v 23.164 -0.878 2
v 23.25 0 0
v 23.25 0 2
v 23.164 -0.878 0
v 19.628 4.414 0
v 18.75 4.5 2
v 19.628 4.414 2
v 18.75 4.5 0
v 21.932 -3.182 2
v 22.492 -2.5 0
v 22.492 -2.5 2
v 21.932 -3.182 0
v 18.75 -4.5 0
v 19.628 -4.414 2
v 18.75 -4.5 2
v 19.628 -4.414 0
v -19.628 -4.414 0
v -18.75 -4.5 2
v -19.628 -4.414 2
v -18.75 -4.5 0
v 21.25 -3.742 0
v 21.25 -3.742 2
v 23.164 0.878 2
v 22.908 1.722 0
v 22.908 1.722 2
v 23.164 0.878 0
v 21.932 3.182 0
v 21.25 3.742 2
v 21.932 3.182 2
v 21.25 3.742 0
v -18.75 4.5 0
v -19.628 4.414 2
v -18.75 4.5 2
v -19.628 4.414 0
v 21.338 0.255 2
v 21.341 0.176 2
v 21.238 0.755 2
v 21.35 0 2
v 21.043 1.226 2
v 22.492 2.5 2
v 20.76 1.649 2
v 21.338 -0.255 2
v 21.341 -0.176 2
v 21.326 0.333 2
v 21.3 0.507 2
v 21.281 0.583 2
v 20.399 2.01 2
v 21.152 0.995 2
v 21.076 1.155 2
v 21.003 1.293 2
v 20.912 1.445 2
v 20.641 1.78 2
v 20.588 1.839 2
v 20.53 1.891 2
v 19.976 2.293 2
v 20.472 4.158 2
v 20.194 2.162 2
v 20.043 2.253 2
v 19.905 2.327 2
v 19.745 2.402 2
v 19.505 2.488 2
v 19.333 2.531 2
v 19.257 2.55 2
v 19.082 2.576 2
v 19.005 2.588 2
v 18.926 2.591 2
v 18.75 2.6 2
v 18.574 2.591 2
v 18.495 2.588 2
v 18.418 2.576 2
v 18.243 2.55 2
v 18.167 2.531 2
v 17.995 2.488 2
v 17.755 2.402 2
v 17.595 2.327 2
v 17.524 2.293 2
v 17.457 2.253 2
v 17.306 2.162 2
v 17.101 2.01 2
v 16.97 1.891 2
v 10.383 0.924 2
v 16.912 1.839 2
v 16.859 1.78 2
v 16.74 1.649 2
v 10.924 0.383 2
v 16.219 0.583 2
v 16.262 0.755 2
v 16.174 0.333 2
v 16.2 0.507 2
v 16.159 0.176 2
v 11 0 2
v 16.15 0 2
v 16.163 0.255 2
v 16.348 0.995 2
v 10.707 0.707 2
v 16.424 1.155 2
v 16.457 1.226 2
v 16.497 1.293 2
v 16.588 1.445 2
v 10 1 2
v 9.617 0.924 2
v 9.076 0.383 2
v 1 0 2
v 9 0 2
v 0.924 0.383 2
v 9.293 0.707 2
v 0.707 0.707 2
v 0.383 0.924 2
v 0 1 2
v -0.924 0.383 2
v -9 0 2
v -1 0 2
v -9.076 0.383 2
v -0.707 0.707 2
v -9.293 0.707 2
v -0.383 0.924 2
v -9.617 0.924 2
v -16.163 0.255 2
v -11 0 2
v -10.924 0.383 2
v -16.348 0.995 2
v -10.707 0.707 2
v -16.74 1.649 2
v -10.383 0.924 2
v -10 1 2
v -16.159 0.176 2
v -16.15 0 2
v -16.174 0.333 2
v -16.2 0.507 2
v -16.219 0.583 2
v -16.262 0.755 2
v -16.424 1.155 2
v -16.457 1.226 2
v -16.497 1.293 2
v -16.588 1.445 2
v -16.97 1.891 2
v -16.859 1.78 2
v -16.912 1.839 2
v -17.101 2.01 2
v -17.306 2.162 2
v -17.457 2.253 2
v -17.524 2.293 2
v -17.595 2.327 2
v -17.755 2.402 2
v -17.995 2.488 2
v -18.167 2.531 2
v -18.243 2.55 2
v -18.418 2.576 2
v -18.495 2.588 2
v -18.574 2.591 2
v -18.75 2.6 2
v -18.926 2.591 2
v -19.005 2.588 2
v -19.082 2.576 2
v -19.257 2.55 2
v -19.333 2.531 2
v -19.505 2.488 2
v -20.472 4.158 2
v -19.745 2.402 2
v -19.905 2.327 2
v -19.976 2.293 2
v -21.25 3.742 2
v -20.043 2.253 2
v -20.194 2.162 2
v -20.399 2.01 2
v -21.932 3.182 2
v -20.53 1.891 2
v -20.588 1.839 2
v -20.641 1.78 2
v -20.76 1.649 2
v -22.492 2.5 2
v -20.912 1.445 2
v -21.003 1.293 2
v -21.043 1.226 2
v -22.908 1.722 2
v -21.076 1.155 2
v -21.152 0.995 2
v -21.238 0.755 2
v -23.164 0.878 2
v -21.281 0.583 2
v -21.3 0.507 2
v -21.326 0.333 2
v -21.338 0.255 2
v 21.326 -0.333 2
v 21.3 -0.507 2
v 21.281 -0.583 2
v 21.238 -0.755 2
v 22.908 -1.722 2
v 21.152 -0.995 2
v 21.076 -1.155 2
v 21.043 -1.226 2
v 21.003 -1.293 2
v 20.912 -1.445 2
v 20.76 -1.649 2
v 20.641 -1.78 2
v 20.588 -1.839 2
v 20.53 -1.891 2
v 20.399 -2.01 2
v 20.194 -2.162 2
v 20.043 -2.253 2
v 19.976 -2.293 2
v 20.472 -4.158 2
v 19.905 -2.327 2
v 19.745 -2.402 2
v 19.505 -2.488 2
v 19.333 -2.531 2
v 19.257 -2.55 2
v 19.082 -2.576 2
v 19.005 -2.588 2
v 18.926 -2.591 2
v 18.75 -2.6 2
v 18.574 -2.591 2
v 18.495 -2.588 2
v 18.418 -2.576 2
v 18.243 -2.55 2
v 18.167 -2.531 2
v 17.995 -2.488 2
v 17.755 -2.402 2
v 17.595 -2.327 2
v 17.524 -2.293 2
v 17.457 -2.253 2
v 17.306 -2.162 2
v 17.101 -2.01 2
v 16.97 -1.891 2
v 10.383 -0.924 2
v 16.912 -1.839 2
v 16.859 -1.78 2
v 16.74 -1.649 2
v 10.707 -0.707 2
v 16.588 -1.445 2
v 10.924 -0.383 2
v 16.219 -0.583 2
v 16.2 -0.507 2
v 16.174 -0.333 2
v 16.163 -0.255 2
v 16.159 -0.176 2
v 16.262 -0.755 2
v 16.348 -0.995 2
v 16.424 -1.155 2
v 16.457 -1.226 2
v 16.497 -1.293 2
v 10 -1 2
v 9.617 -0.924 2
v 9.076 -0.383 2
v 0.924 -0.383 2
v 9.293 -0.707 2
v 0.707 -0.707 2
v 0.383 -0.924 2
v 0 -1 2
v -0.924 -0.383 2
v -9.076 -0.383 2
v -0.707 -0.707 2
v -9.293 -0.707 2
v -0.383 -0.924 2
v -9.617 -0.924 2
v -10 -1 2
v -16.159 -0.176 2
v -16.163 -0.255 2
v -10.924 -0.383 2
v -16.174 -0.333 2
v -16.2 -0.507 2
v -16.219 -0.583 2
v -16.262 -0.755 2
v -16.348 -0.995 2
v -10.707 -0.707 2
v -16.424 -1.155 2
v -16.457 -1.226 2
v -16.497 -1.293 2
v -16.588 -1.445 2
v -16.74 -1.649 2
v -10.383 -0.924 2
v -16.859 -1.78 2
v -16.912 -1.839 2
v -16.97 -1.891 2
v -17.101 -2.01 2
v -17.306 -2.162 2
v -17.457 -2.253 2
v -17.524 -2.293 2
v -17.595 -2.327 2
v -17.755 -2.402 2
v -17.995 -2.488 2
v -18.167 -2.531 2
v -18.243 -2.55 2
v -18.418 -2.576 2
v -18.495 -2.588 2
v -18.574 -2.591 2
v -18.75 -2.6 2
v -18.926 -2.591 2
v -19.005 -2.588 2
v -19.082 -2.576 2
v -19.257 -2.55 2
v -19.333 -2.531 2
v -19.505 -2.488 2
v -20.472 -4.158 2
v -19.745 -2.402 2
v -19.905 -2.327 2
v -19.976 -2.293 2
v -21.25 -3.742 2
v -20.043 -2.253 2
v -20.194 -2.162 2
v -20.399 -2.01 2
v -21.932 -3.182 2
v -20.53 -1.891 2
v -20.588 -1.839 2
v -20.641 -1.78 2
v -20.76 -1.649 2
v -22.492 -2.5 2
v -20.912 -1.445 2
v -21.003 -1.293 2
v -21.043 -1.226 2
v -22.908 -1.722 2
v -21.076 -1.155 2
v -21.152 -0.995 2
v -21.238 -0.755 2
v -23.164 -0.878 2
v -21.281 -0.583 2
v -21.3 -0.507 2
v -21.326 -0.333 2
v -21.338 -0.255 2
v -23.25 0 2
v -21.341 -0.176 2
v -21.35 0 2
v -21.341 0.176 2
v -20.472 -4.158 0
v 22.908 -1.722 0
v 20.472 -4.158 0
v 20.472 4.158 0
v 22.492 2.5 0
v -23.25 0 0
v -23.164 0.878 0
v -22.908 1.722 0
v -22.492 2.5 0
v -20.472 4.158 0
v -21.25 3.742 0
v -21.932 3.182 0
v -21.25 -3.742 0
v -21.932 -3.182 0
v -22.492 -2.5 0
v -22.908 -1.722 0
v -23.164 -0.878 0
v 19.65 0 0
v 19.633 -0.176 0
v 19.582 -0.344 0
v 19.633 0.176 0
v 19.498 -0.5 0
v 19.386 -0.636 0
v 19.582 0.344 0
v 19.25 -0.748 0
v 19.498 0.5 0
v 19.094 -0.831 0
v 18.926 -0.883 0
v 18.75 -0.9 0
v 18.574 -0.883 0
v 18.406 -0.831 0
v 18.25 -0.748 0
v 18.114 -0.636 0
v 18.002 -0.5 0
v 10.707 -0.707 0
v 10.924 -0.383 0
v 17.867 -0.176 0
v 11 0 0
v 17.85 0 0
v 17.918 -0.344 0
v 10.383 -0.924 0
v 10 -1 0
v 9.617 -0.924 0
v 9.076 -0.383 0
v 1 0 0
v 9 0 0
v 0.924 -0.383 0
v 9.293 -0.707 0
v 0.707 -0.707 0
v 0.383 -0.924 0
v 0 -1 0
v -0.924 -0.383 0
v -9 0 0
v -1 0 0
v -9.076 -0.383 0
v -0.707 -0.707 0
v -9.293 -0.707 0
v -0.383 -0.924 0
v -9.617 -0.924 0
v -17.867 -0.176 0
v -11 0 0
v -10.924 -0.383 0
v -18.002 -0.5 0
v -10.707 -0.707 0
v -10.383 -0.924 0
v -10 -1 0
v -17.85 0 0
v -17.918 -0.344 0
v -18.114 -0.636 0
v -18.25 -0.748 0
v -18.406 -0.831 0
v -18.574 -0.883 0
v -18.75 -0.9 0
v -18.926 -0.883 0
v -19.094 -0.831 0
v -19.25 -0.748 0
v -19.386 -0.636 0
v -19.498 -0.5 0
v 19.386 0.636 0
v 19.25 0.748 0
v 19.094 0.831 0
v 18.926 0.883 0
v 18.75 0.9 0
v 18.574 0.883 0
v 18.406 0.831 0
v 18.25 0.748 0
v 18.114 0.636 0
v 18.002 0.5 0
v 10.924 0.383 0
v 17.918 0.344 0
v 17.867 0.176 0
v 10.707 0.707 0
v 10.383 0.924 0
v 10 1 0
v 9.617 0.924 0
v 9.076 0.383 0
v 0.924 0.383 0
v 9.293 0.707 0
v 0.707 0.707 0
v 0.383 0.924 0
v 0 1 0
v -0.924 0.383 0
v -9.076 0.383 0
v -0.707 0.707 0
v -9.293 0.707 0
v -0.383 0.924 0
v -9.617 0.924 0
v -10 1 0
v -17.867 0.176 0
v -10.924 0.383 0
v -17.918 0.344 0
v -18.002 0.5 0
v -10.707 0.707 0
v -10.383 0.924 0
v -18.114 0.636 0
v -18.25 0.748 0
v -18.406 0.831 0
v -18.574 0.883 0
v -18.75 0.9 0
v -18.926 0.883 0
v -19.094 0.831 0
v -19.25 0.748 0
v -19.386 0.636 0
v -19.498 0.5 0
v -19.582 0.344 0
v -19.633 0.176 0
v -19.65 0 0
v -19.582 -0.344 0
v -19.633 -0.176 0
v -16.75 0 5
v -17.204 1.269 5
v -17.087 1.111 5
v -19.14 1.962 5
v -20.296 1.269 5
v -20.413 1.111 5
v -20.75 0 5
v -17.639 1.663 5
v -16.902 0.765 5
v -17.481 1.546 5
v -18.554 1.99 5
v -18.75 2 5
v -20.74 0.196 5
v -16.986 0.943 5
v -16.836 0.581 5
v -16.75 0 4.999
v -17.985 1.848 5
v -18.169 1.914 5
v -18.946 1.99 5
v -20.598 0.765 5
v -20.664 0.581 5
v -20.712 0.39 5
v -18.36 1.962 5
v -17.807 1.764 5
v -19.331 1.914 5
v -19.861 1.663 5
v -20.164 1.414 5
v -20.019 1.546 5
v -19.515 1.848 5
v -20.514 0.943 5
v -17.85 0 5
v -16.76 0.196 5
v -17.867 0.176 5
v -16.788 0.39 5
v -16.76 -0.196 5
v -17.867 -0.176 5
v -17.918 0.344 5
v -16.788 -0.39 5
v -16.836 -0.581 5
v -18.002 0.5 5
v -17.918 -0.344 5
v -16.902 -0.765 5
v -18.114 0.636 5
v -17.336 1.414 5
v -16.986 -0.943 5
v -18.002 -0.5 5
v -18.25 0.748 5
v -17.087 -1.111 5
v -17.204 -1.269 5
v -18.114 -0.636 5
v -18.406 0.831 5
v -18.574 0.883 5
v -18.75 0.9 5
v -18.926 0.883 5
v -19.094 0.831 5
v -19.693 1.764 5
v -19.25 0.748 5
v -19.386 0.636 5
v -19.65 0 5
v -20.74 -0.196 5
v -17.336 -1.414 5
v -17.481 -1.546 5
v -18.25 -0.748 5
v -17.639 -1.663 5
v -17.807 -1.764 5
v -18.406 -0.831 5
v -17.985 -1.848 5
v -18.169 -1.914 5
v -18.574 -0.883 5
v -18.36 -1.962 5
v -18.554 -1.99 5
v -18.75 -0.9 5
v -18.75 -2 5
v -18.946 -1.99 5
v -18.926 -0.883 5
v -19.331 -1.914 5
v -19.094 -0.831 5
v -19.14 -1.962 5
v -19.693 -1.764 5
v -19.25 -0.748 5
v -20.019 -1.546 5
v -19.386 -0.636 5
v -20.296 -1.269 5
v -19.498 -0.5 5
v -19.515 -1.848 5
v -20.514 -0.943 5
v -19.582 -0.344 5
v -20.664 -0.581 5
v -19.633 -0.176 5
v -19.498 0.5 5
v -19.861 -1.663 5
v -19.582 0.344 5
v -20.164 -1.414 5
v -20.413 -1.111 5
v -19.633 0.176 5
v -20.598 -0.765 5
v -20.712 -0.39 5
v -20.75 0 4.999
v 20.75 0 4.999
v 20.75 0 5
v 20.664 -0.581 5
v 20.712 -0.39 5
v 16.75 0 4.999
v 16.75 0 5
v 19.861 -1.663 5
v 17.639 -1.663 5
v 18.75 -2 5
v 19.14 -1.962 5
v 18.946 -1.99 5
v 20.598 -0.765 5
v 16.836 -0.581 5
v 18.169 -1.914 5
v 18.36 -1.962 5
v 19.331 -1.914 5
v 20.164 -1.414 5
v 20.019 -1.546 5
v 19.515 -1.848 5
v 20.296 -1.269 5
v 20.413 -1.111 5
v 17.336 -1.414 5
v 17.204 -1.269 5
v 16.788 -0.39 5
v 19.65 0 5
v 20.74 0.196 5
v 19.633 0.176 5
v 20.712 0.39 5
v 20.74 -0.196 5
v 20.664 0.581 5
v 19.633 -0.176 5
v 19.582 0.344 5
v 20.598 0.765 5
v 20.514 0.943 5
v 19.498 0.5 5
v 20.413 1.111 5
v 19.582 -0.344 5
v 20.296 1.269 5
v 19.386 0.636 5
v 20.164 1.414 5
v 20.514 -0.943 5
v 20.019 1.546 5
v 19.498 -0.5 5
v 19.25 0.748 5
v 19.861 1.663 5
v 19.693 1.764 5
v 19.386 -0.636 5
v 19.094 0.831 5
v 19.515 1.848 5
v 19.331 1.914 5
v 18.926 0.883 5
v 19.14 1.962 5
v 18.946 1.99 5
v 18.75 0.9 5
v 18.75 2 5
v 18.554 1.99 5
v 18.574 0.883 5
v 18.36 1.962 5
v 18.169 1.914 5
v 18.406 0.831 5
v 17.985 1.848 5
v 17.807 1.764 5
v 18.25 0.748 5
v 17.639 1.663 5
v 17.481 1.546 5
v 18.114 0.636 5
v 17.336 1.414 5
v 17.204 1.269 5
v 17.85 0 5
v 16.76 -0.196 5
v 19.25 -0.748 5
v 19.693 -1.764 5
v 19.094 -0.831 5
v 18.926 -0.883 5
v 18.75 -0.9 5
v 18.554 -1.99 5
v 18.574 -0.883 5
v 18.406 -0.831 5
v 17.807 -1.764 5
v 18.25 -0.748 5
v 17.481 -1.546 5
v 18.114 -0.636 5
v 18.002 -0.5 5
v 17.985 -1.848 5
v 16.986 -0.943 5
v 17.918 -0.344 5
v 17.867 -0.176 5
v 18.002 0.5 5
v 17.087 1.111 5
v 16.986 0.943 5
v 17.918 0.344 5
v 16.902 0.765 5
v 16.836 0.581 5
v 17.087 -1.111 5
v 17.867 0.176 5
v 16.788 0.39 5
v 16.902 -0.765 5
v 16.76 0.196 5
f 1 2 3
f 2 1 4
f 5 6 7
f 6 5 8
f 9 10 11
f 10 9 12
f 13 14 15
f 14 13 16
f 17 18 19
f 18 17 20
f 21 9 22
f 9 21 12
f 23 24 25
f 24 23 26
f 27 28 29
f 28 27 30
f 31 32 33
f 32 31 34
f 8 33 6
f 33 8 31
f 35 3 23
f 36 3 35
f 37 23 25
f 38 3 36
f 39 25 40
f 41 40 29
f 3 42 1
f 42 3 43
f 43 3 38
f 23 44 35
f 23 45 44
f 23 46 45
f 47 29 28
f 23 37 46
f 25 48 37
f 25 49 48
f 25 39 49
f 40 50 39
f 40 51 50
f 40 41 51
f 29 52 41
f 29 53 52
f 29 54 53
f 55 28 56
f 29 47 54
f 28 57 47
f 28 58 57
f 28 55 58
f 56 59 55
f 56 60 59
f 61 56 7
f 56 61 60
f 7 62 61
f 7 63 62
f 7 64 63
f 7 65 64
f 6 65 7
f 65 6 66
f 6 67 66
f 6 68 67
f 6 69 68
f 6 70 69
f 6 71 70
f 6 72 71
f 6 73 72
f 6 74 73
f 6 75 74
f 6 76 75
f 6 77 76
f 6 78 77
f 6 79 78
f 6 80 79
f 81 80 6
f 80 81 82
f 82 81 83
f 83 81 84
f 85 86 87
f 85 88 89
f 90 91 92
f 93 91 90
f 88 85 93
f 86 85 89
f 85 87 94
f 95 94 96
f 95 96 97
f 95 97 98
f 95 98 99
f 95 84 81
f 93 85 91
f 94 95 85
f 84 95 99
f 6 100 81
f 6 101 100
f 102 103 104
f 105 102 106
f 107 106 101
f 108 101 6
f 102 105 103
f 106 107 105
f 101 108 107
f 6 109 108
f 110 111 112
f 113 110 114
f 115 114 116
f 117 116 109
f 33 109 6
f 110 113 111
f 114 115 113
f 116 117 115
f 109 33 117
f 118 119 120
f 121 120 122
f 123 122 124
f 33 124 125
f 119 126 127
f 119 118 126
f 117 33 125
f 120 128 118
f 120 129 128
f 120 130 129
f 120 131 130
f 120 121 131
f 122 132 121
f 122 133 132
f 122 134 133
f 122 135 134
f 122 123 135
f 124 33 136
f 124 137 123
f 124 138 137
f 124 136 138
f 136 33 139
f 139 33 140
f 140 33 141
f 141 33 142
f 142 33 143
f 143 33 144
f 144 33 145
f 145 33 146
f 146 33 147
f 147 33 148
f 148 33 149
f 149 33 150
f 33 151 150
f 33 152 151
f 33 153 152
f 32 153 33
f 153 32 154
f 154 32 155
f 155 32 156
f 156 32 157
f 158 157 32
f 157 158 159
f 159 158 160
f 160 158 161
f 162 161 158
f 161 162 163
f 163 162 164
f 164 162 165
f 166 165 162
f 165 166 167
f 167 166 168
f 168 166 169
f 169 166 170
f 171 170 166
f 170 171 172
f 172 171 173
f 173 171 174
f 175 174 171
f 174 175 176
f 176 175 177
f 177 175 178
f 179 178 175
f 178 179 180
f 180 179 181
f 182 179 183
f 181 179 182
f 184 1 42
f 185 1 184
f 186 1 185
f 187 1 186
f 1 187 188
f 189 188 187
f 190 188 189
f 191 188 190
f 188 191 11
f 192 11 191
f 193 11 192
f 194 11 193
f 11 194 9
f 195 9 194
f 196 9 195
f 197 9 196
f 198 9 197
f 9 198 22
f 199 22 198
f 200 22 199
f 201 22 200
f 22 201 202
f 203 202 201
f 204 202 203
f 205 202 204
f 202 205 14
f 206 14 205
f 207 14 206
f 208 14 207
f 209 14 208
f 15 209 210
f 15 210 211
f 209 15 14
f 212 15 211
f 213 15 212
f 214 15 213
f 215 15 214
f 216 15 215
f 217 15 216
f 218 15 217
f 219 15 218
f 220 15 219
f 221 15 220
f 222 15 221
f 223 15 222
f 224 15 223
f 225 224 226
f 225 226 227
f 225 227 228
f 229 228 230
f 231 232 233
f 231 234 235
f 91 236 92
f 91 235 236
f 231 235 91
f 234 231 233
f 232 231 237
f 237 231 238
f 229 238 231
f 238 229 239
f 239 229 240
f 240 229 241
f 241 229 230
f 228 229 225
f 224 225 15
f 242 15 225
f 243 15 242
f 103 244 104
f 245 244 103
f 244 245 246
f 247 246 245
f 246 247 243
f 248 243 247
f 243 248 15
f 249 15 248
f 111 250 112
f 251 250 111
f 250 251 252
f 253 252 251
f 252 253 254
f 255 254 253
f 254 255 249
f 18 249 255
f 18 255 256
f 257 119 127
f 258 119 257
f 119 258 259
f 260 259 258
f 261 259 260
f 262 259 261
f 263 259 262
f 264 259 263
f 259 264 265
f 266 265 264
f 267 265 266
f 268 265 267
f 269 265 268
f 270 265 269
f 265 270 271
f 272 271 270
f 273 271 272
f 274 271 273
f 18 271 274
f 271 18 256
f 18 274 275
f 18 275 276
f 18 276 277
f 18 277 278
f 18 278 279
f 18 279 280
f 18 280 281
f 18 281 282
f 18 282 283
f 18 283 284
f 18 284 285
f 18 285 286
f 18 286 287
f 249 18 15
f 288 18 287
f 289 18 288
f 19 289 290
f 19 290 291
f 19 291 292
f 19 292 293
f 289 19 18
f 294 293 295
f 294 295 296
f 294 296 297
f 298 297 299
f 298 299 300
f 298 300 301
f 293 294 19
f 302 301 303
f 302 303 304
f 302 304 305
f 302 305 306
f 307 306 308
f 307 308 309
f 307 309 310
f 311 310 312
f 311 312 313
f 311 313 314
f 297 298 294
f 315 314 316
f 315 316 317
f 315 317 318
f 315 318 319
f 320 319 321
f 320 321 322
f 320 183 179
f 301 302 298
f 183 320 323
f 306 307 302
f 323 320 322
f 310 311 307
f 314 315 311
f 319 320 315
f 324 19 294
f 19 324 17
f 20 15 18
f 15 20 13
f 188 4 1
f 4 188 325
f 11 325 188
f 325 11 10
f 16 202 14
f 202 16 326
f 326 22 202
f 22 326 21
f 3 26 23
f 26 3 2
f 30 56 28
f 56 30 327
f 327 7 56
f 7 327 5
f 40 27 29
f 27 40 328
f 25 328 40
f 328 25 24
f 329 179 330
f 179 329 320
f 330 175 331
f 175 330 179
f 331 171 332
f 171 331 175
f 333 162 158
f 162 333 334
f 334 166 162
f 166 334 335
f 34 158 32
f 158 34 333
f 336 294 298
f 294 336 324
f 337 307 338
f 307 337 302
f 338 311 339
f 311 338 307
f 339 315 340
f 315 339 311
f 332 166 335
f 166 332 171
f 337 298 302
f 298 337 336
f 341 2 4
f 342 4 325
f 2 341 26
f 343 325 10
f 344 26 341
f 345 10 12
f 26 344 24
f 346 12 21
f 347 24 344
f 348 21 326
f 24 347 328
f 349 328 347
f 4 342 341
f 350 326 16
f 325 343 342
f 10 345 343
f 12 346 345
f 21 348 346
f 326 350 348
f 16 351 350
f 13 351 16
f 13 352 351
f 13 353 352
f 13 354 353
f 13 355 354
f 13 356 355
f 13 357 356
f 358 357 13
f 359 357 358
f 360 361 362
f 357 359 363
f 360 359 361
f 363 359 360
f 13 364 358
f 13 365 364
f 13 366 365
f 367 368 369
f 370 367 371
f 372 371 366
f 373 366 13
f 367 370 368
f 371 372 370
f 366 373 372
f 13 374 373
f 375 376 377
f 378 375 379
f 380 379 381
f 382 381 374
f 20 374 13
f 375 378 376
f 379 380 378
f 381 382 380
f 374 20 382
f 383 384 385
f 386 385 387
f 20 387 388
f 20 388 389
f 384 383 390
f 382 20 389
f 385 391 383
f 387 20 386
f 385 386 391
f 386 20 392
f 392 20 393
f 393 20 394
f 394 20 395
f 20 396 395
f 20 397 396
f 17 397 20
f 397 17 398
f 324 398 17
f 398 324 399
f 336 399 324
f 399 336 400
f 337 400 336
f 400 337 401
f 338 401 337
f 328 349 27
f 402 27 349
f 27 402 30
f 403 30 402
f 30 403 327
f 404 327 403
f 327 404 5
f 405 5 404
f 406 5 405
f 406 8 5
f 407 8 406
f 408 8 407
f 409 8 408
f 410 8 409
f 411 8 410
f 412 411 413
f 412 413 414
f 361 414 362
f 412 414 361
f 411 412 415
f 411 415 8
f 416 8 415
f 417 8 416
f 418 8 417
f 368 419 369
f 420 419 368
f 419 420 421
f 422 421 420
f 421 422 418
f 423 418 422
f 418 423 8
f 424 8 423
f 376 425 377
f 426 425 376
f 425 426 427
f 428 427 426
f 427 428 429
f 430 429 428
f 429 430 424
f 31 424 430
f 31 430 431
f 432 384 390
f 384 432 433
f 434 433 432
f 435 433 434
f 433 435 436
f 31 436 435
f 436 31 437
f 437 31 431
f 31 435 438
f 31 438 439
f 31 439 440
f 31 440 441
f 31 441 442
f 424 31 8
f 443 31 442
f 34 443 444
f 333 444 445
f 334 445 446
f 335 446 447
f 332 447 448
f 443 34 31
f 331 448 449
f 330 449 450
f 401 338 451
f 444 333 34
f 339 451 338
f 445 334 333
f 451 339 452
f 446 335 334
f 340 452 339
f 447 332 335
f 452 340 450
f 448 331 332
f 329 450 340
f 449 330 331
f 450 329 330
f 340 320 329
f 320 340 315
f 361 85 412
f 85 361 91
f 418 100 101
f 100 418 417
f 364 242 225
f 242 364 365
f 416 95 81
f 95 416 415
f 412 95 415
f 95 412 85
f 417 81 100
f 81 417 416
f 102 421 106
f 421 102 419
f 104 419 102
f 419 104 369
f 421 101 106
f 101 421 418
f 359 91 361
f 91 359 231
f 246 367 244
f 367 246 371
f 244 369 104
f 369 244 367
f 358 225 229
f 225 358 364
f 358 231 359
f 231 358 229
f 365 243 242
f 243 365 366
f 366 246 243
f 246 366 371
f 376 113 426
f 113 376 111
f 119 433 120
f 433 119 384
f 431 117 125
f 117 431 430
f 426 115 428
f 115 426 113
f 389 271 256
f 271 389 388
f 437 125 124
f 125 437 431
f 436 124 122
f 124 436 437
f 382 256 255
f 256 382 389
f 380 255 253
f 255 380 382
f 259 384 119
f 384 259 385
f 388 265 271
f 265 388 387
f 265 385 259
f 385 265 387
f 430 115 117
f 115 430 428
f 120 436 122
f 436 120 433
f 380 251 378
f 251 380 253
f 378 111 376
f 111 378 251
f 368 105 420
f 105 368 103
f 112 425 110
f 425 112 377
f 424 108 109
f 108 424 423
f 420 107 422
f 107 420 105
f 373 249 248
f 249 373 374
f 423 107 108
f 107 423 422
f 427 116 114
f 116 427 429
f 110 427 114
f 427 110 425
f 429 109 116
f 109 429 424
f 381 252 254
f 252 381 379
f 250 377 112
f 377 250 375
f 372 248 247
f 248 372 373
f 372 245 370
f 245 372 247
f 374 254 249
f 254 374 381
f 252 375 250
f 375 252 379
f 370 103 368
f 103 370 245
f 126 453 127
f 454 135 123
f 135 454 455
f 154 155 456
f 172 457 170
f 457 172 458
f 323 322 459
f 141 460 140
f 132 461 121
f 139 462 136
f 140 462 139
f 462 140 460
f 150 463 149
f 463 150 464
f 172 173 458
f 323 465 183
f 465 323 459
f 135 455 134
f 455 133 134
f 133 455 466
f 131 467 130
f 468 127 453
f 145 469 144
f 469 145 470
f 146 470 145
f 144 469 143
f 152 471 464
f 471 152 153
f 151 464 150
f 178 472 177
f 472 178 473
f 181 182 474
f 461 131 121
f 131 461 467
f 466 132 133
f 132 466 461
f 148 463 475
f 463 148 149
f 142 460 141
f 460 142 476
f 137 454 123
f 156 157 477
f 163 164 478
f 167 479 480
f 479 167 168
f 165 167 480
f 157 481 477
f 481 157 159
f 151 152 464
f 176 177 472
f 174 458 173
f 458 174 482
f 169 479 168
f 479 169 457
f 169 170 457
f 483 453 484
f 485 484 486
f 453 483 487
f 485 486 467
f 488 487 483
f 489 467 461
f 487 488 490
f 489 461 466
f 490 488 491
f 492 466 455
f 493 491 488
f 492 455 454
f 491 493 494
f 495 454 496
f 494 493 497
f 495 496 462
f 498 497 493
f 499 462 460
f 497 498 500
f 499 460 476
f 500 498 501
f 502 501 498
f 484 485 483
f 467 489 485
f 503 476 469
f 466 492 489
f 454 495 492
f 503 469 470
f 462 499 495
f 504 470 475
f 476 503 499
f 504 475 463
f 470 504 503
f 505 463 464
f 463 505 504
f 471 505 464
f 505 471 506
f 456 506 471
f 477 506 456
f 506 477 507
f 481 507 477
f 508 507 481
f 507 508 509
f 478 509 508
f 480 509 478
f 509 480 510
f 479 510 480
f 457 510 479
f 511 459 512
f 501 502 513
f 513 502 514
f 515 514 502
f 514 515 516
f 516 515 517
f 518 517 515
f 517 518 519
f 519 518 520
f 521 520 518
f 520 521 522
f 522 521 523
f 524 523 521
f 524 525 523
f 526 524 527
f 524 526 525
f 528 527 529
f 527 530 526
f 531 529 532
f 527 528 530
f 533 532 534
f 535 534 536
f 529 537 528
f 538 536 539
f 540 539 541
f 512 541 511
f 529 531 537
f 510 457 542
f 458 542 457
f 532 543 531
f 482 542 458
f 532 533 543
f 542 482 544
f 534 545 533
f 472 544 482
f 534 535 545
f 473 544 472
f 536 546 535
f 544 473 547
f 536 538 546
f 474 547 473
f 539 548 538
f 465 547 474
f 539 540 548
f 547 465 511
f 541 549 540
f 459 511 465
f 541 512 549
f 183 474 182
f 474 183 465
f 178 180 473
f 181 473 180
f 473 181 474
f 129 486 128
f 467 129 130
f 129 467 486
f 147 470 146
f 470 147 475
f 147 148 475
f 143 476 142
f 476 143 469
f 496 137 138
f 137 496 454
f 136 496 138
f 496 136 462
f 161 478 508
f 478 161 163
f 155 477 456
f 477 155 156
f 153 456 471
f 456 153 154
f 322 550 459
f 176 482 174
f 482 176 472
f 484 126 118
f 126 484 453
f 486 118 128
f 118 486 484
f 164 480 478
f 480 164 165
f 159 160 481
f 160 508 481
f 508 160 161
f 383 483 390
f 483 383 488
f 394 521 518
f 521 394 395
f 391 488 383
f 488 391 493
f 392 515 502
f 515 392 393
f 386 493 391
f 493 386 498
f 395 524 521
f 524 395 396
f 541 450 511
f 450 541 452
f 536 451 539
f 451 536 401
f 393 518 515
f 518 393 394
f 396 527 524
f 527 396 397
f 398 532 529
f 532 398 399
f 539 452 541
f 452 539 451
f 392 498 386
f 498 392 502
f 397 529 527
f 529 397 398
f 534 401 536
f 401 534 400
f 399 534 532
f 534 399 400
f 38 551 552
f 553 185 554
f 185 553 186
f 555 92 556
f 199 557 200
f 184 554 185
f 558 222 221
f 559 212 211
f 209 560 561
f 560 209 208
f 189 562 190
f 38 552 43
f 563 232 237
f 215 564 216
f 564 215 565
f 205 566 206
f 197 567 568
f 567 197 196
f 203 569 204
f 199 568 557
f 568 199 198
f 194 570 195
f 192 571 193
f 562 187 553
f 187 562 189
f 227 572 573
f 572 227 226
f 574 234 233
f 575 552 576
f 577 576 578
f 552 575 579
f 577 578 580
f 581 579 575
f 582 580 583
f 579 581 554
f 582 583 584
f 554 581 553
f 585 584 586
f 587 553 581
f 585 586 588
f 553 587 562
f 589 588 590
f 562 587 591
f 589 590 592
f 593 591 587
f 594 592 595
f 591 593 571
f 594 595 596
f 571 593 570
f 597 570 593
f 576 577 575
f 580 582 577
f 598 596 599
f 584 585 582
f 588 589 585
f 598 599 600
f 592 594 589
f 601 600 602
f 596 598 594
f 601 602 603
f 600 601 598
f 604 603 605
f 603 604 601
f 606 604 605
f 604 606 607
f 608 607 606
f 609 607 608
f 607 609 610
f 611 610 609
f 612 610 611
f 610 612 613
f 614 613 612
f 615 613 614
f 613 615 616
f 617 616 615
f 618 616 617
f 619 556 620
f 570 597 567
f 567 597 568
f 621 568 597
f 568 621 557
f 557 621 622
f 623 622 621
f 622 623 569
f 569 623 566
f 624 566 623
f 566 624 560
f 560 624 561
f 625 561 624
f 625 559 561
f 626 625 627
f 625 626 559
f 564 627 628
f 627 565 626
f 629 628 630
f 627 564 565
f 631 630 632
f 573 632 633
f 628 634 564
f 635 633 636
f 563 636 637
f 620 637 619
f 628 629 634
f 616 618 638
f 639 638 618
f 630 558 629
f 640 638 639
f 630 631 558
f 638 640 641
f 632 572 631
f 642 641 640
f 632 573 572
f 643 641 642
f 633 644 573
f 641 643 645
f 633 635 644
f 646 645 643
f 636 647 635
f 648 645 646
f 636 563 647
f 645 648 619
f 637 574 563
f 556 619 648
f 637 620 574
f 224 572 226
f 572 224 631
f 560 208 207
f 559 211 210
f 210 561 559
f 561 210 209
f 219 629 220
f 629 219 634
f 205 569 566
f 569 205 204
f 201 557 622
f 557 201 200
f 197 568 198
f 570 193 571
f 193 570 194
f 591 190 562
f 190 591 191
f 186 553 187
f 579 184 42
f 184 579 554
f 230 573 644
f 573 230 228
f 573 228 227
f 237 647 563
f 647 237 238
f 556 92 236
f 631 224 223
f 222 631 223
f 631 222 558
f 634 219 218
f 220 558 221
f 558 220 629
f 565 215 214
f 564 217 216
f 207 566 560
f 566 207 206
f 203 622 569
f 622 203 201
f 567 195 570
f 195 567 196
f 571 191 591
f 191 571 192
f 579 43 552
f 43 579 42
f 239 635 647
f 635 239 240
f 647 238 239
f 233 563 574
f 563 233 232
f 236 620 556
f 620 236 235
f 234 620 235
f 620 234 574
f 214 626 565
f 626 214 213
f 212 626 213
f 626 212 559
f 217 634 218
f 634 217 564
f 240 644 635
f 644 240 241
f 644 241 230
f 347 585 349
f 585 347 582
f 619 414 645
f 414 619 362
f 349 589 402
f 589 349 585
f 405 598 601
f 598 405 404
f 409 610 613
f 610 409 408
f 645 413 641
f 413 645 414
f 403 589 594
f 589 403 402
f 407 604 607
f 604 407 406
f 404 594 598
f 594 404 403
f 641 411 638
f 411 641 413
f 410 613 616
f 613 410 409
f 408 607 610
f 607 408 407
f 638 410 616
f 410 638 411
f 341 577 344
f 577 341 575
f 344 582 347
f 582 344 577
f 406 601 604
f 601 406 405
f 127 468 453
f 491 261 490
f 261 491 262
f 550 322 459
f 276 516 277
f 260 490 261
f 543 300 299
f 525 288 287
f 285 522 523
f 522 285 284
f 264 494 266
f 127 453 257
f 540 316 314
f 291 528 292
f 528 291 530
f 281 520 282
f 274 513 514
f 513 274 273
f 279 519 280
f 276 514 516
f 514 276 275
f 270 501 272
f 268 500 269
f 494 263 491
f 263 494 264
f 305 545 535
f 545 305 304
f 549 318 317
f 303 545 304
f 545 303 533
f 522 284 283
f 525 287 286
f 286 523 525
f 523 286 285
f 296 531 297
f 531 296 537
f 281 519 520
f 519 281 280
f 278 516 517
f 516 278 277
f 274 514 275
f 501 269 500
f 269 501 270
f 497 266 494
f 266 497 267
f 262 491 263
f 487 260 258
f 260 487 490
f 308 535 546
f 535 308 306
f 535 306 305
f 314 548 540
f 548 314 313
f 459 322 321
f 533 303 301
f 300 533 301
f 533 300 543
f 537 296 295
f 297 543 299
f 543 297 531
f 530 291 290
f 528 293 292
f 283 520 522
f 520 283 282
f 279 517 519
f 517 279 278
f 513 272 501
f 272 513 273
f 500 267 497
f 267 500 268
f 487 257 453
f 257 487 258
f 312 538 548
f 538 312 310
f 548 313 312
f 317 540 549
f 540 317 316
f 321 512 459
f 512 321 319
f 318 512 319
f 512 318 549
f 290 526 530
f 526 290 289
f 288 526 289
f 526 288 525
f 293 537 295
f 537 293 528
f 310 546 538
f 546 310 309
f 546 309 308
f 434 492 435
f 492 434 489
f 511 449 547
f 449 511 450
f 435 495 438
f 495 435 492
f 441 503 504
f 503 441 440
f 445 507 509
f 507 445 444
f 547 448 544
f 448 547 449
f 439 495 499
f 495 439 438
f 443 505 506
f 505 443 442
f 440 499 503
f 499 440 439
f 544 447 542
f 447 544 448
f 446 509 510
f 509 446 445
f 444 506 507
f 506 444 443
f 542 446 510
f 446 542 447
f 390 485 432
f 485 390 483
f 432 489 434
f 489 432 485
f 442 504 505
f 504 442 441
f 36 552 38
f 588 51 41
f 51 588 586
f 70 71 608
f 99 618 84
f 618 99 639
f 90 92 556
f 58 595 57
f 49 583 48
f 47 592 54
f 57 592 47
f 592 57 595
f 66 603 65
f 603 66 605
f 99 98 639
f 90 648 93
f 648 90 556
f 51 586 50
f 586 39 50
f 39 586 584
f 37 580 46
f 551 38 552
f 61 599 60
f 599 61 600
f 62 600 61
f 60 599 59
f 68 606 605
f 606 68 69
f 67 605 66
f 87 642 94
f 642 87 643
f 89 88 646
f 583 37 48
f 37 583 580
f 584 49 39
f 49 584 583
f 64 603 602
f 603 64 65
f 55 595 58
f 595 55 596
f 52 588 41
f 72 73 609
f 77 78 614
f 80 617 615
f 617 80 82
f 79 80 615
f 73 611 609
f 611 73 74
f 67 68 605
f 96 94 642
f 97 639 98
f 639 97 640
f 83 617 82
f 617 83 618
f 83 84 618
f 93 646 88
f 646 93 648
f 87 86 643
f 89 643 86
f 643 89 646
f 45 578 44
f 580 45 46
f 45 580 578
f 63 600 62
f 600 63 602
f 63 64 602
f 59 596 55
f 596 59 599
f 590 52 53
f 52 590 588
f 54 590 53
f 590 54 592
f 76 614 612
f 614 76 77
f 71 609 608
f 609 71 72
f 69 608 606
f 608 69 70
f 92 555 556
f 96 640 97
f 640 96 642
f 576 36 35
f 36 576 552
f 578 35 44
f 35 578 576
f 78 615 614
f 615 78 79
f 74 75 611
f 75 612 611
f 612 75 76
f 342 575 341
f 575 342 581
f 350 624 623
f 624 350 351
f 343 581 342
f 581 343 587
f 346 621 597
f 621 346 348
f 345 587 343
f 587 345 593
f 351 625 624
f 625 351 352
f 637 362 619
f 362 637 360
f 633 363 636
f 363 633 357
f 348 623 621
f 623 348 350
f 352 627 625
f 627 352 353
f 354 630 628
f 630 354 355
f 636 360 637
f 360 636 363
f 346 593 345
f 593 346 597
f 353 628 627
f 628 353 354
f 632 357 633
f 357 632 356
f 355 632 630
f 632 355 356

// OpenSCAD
L1=37.5;
W1=0.0001;

difference() {
minkowski() {
translate([-L1/2,-W1/2])
cube([L1,W1,2]);
cylinder(d=9,h=0.0001,$fn=32);

}

translate([10,0,0])
cylinder(d=2,h=4,$fn=16);

translate([-10,0,0])
cylinder(d=2,h=4,$fn=16);

translate([0,0,0])
cylinder(d=2,h=4,$fn=16);

translate([0,0,0])
cylinder(d=2,h=4,$fn=16);

translate([L1/2,W1/2,0])
standoffh();
translate([L1/2,-W1/2,0])
standoffh();
translate([-L1/2,W1/2,0])
standoffh();
translate([-L1/2,-W1/2,0])
standoffh();
}

translate([-L1/2,W1/2,0])
standoff();
translate([L1/2,-W1/2,0])
standoff();
translate([-L1/2,-W1/2,0])
standoff();
translate([L1/2,W1/2,0])
standoff();

module standoff() {
    difference() {
        cylinder(d1=6,d2=4,h=5,$fn=64);
        cylinder(d=1.8,h=6,$fn=32);
    }
}

module standoff2() {
        cylinder(d1=6,d2=4,h=5,$fn=64);
        cylinder(d=2.1,h=6.5,$fn=32);
}

module standoffh() {

        cylinder(d=1.8,h=6,$fn=32);
}
